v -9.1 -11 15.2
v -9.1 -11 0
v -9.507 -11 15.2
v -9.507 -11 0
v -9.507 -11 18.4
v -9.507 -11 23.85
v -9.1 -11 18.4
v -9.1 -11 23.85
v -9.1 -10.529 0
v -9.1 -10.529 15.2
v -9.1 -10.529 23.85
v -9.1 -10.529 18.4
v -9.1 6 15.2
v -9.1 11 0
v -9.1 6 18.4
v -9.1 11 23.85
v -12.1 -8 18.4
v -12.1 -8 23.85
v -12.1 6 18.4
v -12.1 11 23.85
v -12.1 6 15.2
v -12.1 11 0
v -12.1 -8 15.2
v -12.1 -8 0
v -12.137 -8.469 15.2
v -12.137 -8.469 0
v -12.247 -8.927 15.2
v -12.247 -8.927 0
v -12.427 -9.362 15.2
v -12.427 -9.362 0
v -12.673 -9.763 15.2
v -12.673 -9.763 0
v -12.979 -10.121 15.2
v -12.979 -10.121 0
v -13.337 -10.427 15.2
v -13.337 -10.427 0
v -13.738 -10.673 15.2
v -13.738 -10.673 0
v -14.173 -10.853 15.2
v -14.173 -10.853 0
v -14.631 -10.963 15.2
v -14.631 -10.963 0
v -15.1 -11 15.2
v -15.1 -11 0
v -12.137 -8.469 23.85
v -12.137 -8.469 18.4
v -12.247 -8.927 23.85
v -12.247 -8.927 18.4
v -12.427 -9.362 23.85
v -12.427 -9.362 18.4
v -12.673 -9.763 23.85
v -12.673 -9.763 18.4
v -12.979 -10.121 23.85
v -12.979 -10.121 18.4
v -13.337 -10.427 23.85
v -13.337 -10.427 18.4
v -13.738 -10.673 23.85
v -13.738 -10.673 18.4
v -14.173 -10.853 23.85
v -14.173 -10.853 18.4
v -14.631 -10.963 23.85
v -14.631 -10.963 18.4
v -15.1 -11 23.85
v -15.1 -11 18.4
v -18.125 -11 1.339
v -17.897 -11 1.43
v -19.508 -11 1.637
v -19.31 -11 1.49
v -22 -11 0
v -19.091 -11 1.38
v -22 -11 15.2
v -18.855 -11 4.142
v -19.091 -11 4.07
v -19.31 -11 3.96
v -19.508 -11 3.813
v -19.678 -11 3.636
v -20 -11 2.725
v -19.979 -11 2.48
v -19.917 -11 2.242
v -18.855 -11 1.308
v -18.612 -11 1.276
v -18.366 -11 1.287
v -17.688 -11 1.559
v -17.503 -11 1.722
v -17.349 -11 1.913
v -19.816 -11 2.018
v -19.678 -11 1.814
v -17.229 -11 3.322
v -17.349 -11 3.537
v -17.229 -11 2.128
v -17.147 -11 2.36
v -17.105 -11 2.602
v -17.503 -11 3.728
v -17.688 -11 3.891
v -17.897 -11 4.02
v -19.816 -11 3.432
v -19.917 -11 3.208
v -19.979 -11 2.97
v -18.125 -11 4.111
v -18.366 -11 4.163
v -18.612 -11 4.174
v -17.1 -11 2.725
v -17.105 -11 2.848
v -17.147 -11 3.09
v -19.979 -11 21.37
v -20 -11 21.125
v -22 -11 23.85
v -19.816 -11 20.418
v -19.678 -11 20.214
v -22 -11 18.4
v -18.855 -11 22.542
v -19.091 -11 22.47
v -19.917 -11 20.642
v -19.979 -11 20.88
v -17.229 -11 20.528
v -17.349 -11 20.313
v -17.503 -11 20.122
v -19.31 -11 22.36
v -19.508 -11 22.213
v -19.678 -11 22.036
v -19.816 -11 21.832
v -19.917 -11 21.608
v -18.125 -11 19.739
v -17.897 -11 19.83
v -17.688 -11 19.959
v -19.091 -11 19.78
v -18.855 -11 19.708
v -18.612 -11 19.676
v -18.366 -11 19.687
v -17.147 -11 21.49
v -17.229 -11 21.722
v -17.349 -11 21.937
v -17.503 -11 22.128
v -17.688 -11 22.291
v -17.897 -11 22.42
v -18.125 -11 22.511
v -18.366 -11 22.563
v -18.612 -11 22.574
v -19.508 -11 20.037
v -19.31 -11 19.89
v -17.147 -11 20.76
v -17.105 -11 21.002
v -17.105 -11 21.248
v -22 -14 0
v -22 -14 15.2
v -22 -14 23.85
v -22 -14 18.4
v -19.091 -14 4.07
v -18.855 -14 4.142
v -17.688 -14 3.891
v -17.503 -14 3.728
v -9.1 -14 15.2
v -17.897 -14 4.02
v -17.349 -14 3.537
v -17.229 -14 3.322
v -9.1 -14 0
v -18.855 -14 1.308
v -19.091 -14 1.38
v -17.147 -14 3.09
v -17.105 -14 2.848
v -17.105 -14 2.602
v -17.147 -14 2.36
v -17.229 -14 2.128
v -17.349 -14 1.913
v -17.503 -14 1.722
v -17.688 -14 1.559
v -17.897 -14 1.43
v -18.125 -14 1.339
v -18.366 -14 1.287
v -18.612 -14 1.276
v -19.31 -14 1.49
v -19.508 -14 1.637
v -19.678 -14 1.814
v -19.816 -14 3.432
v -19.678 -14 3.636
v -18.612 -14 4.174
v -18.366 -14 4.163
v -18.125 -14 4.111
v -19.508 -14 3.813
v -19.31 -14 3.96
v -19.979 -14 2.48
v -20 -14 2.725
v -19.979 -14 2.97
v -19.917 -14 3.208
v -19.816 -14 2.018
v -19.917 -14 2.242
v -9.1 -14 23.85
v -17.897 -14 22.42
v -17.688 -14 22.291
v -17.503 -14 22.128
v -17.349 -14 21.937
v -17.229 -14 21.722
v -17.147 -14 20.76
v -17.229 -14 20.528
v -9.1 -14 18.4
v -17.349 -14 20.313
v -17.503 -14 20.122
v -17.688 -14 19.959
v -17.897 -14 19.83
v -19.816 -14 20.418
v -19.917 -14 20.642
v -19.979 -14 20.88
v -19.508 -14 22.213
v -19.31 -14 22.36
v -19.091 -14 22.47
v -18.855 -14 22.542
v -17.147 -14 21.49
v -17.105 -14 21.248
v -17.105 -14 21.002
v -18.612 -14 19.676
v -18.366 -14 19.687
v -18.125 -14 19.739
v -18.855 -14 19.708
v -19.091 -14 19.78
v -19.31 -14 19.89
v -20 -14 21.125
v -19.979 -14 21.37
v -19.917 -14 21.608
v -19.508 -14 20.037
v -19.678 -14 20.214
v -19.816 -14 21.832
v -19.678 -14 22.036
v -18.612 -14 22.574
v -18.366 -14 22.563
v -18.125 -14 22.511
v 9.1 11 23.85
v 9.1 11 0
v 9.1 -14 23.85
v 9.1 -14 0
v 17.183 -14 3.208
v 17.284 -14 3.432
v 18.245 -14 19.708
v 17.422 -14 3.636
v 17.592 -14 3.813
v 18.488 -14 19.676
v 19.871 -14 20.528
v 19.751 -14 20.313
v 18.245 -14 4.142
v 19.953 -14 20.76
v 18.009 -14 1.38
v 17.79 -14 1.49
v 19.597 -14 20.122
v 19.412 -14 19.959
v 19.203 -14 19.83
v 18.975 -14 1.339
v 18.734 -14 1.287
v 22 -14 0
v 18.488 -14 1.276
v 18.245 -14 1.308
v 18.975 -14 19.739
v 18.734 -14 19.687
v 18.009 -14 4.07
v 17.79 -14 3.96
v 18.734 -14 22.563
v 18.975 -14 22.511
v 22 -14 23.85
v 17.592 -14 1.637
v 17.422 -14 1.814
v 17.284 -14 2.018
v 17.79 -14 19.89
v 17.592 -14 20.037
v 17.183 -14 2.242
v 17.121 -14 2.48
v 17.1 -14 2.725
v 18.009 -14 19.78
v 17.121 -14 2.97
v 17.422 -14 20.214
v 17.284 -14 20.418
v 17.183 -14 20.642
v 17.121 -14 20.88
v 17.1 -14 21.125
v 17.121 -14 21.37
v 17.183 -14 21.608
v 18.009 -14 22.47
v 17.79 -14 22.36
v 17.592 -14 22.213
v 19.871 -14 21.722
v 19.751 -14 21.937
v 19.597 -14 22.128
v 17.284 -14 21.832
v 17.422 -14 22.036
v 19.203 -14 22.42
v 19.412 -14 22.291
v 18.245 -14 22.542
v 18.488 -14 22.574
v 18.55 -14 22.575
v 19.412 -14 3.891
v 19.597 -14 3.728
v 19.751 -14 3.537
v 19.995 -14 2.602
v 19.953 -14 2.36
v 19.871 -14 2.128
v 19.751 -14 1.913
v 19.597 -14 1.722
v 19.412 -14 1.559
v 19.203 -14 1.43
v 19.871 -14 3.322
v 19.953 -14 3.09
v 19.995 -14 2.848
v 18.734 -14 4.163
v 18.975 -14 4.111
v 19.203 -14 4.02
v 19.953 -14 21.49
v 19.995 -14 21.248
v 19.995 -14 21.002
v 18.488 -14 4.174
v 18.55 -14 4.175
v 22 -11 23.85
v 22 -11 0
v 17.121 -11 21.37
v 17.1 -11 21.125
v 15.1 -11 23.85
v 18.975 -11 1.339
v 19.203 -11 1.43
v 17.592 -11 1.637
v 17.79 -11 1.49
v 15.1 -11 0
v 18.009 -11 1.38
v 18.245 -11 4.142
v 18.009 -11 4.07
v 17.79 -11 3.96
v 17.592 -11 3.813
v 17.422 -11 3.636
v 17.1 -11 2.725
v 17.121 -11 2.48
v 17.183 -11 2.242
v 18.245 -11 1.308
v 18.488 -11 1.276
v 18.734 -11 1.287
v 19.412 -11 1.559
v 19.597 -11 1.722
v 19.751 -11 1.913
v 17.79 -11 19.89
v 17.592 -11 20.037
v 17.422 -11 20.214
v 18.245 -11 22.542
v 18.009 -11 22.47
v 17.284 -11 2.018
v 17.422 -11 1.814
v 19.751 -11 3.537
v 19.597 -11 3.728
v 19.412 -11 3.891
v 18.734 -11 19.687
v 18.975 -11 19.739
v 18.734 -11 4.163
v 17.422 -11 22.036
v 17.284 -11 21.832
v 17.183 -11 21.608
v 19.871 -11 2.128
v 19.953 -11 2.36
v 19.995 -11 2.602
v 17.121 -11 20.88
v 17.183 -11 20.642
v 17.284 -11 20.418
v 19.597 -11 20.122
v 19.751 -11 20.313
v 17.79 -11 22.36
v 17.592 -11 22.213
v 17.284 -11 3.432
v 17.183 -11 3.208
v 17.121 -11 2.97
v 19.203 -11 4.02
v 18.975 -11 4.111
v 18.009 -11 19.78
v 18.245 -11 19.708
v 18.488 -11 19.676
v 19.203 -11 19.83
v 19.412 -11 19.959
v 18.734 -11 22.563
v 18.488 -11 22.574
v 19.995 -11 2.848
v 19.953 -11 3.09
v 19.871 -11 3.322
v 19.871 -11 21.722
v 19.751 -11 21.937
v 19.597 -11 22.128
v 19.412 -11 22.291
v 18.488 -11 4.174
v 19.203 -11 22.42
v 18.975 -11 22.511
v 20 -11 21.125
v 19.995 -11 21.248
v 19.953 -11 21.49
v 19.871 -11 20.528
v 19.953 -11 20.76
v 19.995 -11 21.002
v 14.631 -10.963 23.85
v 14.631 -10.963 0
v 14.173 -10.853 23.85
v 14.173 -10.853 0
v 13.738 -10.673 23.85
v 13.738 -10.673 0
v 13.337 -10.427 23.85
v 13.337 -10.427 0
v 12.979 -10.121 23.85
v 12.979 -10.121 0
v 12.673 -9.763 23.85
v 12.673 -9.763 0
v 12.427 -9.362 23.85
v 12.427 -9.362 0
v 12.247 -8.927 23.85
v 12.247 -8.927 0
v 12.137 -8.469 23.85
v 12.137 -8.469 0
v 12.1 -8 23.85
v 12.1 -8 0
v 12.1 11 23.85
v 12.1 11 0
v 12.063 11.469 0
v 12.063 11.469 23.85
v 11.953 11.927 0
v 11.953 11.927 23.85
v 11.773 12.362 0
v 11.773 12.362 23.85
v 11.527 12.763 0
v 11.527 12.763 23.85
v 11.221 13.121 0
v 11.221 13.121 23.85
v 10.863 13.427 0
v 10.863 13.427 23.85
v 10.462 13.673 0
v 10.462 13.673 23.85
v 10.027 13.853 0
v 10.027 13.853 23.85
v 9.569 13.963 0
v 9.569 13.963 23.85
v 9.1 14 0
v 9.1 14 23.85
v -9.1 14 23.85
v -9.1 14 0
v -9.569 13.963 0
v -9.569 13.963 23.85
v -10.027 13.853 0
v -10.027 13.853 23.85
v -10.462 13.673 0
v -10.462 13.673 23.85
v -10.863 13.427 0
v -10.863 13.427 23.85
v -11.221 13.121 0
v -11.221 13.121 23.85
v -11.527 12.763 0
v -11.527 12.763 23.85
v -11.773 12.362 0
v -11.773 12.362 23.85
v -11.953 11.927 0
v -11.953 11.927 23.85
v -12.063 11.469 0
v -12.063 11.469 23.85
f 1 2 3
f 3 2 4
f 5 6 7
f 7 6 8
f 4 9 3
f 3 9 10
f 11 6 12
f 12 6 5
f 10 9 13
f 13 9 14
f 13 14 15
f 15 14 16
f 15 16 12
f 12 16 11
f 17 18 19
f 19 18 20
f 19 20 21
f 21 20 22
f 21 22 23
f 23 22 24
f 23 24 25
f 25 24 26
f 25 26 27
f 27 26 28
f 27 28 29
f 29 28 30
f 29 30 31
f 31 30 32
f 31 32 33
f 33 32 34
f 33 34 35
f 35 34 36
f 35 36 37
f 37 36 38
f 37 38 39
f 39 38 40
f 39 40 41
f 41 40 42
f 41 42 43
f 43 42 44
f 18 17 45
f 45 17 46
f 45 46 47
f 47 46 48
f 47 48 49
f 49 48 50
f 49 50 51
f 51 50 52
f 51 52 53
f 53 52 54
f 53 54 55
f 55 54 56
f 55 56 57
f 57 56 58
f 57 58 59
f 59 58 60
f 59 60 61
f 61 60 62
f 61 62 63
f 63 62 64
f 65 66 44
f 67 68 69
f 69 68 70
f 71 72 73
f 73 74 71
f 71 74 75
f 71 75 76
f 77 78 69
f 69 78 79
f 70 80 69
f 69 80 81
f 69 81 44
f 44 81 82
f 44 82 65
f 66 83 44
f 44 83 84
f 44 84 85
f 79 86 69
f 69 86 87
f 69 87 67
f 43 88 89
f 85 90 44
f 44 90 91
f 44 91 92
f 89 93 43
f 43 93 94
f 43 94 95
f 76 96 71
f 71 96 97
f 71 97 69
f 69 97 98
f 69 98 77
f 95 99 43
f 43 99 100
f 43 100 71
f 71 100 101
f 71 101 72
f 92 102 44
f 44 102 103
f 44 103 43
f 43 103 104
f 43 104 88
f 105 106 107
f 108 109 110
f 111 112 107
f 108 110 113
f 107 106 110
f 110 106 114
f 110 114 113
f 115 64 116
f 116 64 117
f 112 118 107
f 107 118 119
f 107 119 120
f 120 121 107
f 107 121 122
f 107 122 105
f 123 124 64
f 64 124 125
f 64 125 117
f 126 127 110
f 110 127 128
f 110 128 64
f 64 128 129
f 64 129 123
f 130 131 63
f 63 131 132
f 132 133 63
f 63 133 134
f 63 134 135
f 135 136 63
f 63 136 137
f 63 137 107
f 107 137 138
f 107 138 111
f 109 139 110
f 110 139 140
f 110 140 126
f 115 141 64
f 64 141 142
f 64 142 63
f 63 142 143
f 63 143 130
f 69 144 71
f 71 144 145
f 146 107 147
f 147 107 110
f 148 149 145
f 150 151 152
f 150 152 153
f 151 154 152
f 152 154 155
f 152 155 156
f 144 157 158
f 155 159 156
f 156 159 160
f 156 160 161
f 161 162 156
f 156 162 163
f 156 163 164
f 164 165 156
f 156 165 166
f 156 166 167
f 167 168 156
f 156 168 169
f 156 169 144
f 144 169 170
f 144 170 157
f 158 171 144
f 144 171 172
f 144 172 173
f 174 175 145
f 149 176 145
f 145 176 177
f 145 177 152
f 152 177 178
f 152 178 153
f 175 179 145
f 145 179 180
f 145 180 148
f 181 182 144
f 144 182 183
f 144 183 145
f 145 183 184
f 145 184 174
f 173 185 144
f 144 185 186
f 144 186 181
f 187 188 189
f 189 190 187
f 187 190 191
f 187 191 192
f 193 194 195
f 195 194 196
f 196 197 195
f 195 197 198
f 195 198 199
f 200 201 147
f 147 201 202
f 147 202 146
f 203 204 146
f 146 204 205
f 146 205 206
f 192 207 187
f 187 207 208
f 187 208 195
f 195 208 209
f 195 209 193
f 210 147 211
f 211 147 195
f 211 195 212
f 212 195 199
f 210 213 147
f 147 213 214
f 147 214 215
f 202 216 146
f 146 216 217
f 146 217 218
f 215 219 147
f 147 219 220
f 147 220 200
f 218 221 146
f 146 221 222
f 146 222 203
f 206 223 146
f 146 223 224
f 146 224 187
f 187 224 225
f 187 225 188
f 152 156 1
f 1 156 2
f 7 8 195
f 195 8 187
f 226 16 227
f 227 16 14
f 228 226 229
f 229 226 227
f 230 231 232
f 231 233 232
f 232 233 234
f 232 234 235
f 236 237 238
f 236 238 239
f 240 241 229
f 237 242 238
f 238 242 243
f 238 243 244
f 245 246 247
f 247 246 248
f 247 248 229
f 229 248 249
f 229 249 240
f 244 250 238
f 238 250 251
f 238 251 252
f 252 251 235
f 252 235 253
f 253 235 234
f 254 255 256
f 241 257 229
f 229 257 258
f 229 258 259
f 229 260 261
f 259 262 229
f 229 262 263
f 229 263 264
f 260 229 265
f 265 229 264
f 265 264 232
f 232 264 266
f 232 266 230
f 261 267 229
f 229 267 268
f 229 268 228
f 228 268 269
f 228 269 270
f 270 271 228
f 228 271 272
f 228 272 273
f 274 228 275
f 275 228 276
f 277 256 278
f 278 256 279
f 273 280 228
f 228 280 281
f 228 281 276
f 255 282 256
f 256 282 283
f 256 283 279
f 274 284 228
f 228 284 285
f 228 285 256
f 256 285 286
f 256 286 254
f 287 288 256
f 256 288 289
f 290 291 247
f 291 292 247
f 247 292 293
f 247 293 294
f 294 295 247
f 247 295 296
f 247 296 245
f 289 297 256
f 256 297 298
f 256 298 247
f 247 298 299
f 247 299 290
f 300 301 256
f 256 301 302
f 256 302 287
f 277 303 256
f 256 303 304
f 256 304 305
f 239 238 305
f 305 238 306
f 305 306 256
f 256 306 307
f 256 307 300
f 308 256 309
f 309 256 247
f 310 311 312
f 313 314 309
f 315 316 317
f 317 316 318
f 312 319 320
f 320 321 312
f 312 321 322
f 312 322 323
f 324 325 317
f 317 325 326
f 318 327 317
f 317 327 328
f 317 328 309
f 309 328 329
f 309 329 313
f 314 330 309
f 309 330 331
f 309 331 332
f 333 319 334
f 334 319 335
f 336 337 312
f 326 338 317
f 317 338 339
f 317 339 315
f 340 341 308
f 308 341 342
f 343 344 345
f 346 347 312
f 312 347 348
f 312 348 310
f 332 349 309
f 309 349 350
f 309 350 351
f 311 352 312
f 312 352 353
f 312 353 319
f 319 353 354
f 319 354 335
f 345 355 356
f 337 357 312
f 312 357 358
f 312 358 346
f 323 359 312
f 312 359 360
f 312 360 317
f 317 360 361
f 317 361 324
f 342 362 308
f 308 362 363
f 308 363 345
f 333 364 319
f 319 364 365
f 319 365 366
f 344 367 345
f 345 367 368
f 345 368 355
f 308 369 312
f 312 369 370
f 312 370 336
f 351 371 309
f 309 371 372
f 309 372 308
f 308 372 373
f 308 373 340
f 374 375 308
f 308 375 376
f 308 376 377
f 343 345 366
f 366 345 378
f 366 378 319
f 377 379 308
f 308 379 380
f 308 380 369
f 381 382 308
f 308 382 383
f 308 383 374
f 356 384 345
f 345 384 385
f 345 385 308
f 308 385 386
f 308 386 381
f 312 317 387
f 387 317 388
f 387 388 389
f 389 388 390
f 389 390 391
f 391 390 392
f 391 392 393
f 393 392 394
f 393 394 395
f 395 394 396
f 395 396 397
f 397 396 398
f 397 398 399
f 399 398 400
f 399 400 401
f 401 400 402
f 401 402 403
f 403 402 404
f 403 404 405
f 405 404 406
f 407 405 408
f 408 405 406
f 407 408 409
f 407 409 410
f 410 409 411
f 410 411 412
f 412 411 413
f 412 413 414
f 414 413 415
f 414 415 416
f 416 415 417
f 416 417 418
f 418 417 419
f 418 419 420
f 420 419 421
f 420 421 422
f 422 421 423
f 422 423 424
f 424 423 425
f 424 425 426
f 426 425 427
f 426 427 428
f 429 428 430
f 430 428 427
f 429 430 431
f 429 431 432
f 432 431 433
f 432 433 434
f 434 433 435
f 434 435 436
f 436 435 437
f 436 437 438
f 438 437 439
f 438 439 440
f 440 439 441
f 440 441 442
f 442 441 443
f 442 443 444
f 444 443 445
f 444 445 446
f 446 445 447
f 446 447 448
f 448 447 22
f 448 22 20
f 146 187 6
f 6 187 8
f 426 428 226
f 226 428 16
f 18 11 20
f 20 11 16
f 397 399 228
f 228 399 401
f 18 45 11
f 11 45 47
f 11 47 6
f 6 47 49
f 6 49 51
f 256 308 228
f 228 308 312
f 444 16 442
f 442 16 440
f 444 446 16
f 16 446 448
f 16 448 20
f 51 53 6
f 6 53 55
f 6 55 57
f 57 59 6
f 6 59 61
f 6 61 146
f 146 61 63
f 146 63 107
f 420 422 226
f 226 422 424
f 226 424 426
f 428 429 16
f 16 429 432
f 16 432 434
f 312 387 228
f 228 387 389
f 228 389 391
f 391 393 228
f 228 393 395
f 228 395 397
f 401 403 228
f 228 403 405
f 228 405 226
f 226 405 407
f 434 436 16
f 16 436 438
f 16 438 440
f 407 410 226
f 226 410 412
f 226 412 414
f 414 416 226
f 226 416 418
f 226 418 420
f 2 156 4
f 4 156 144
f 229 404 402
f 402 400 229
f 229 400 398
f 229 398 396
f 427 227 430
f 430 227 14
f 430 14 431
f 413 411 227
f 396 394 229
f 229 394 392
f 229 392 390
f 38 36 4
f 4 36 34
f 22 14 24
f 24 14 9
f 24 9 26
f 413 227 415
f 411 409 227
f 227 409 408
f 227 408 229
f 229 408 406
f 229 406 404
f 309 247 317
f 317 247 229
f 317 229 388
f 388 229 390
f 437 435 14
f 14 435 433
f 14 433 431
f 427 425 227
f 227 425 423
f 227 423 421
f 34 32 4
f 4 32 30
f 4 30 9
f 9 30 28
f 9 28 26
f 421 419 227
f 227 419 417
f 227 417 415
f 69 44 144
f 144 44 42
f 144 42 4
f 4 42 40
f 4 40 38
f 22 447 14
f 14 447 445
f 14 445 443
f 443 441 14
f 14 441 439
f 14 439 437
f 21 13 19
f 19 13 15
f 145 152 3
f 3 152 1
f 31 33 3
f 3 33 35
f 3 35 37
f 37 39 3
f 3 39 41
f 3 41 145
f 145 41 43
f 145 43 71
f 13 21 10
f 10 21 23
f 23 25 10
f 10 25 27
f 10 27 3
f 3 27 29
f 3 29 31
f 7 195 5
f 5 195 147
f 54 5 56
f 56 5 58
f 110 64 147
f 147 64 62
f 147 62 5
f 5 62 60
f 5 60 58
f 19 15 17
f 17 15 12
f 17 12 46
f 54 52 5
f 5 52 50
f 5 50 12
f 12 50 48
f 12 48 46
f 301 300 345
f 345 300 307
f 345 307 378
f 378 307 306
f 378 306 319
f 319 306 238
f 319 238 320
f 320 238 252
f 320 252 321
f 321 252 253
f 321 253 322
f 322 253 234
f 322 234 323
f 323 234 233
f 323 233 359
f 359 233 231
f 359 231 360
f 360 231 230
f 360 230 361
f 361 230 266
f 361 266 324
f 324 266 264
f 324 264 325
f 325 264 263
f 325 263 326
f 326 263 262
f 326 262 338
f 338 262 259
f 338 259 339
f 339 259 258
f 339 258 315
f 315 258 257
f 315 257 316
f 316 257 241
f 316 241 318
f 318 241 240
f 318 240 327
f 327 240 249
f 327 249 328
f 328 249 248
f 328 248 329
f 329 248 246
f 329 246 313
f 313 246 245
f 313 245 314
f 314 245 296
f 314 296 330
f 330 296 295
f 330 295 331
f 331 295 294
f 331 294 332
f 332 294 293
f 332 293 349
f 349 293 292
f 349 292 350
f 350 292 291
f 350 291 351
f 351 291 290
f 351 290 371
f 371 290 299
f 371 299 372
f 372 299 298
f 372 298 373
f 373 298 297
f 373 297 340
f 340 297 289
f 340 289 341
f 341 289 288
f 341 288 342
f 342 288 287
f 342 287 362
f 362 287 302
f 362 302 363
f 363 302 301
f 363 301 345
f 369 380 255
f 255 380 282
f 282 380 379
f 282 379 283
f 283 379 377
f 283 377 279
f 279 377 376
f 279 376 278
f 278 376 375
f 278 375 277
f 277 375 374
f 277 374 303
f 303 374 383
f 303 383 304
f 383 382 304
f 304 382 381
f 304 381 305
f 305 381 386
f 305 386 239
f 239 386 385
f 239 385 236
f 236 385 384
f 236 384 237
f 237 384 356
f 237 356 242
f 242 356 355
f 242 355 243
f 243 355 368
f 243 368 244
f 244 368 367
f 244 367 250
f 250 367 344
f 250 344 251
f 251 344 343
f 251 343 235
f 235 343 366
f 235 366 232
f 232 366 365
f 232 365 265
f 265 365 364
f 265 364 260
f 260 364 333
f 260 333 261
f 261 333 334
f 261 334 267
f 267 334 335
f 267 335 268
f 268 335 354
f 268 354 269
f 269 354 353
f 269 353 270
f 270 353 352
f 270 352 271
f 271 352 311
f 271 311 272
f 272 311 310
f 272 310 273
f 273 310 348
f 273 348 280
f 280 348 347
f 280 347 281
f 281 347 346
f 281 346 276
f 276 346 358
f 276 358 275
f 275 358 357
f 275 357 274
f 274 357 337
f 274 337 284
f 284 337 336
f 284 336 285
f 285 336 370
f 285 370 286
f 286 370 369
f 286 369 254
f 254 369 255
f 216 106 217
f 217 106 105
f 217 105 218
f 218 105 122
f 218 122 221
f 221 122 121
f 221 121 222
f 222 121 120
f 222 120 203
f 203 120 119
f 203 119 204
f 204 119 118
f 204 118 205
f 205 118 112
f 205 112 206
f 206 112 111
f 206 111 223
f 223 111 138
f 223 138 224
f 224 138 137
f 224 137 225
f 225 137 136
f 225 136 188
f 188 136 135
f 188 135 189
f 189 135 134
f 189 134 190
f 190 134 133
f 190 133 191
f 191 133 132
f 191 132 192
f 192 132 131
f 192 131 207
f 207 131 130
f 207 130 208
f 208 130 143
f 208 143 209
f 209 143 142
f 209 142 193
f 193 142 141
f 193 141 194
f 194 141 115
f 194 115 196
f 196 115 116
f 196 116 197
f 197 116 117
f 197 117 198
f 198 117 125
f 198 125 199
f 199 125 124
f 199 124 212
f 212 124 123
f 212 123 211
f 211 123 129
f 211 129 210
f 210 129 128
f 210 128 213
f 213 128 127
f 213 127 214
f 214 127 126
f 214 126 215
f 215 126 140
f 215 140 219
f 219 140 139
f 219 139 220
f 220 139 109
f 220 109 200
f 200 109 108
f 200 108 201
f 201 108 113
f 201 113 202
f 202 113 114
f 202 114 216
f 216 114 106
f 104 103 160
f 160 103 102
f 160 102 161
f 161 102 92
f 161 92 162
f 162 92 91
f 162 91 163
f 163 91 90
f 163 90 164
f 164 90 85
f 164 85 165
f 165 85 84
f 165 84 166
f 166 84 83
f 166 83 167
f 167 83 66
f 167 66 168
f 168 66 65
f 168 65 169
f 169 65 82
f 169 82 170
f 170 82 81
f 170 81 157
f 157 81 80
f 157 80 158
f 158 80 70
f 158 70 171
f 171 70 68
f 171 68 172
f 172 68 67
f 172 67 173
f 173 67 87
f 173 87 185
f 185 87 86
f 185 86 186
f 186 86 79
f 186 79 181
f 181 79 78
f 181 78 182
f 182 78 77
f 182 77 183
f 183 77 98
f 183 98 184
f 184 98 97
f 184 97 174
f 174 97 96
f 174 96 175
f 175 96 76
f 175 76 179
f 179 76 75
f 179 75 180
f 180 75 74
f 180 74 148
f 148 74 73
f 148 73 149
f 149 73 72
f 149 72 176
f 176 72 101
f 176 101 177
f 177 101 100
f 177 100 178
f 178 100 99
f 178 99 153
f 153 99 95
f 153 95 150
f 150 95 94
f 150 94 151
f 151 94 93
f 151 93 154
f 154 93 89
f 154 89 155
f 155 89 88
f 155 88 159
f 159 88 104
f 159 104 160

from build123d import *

# Parameters (mm, degrees)
BOSS_EXTRUDE1_DEPTH     = 23.85
CUT_EXTRUDE2_DEPTH      = 12
CUT_EXTRUDE2_DEPTH_BACK = 10
SKETCH2_W               = 3.2
SKETCH2_H               = 20
SKETCH4_R               = 1.45
CUT_EXTRUDE3_DEPTH      = 10


with BuildPart() as part:
    # Sketch1 → Boss-Extrude1 (new body)
    with BuildSketch(Plane.XY):
        with BuildLine():
            Line((-9.1, -10.52892562), (-9.1, 11))
            Line((-9.1, 11), (9.1, 11))
            Line((9.1, 11), (9.1, -11))
            Line((9.1, -11), (9.1, -14))
            Line((9.1, -14), (12.1, -14))
            Line((12.1, -14), (22, -14))
            Line((22, -14), (22, -11))
            Line((22, -11), (15.1, -11))
            ThreePointArc((15.1, -11), (12.978679656, -10.121320344), (12.1, -8))
            Line((12.1, -8), (12.1, 11))
            ThreePointArc((12.1, 11), (11.221320344, 13.121320344), (9.1, 14))
            Line((9.1, 14), (-9.1, 14))
            ThreePointArc((-9.1, 14), (-11.221320344, 13.121320344), (-12.1, 11))
            Line((-12.1, 11), (-12.1, -8))
            ThreePointArc((-12.1, -8), (-12.978679656, -10.121320344), (-15.1, -11))
            Line((-15.1, -11), (-22, -11))
            Line((-22, -11), (-22, -14))
            Line((-22, -14), (-12.1, -14))
            Line((-12.1, -14), (-9.1, -14))
            Line((-9.1, -14), (-9.1, -11))
            Line((-9.1, -11), (-9.507142857, -11))
            Line((-9.507142857, -11), (-9.1, -10.52892562))
        make_face()
    extrude(amount=BOSS_EXTRUDE1_DEPTH)

    # Sketch2 → Cut-Extrude2 (cut, two sides: drawn at the far end of the back side and taken through both)
    with BuildSketch(Plane.ZY.offset(12.1).offset(-CUT_EXTRUDE2_DEPTH_BACK)):
        with Locations((16.8, -4)):
            Rectangle(SKETCH2_W, SKETCH2_H)
    extrude(amount=CUT_EXTRUDE2_DEPTH + CUT_EXTRUDE2_DEPTH_BACK, mode=Mode.SUBTRACT)

    # Sketch4 → Cut-Extrude3 (cut)
    with BuildSketch(Plane(origin=(0, -11, 0), x_dir=(1, 0, 0), z_dir=(0, 1, 0))):
        with Locations(Location((-18.55, -21.125, 0), (0, 0, 180))):
            Circle(SKETCH4_R)
        with Locations(Location((-18.55, -2.725, 0), (0, 0, 180))):
            Circle(SKETCH4_R)
        with Locations(Location((18.55, -21.125, 0), (0, 0, 270))):
            Circle(SKETCH4_R)
        with Locations(Location((18.55, -2.725, 0), (0, 0, 180))):
            Circle(SKETCH4_R)
    extrude(amount=-CUT_EXTRUDE3_DEPTH, mode=Mode.SUBTRACT)


solid = part.part
